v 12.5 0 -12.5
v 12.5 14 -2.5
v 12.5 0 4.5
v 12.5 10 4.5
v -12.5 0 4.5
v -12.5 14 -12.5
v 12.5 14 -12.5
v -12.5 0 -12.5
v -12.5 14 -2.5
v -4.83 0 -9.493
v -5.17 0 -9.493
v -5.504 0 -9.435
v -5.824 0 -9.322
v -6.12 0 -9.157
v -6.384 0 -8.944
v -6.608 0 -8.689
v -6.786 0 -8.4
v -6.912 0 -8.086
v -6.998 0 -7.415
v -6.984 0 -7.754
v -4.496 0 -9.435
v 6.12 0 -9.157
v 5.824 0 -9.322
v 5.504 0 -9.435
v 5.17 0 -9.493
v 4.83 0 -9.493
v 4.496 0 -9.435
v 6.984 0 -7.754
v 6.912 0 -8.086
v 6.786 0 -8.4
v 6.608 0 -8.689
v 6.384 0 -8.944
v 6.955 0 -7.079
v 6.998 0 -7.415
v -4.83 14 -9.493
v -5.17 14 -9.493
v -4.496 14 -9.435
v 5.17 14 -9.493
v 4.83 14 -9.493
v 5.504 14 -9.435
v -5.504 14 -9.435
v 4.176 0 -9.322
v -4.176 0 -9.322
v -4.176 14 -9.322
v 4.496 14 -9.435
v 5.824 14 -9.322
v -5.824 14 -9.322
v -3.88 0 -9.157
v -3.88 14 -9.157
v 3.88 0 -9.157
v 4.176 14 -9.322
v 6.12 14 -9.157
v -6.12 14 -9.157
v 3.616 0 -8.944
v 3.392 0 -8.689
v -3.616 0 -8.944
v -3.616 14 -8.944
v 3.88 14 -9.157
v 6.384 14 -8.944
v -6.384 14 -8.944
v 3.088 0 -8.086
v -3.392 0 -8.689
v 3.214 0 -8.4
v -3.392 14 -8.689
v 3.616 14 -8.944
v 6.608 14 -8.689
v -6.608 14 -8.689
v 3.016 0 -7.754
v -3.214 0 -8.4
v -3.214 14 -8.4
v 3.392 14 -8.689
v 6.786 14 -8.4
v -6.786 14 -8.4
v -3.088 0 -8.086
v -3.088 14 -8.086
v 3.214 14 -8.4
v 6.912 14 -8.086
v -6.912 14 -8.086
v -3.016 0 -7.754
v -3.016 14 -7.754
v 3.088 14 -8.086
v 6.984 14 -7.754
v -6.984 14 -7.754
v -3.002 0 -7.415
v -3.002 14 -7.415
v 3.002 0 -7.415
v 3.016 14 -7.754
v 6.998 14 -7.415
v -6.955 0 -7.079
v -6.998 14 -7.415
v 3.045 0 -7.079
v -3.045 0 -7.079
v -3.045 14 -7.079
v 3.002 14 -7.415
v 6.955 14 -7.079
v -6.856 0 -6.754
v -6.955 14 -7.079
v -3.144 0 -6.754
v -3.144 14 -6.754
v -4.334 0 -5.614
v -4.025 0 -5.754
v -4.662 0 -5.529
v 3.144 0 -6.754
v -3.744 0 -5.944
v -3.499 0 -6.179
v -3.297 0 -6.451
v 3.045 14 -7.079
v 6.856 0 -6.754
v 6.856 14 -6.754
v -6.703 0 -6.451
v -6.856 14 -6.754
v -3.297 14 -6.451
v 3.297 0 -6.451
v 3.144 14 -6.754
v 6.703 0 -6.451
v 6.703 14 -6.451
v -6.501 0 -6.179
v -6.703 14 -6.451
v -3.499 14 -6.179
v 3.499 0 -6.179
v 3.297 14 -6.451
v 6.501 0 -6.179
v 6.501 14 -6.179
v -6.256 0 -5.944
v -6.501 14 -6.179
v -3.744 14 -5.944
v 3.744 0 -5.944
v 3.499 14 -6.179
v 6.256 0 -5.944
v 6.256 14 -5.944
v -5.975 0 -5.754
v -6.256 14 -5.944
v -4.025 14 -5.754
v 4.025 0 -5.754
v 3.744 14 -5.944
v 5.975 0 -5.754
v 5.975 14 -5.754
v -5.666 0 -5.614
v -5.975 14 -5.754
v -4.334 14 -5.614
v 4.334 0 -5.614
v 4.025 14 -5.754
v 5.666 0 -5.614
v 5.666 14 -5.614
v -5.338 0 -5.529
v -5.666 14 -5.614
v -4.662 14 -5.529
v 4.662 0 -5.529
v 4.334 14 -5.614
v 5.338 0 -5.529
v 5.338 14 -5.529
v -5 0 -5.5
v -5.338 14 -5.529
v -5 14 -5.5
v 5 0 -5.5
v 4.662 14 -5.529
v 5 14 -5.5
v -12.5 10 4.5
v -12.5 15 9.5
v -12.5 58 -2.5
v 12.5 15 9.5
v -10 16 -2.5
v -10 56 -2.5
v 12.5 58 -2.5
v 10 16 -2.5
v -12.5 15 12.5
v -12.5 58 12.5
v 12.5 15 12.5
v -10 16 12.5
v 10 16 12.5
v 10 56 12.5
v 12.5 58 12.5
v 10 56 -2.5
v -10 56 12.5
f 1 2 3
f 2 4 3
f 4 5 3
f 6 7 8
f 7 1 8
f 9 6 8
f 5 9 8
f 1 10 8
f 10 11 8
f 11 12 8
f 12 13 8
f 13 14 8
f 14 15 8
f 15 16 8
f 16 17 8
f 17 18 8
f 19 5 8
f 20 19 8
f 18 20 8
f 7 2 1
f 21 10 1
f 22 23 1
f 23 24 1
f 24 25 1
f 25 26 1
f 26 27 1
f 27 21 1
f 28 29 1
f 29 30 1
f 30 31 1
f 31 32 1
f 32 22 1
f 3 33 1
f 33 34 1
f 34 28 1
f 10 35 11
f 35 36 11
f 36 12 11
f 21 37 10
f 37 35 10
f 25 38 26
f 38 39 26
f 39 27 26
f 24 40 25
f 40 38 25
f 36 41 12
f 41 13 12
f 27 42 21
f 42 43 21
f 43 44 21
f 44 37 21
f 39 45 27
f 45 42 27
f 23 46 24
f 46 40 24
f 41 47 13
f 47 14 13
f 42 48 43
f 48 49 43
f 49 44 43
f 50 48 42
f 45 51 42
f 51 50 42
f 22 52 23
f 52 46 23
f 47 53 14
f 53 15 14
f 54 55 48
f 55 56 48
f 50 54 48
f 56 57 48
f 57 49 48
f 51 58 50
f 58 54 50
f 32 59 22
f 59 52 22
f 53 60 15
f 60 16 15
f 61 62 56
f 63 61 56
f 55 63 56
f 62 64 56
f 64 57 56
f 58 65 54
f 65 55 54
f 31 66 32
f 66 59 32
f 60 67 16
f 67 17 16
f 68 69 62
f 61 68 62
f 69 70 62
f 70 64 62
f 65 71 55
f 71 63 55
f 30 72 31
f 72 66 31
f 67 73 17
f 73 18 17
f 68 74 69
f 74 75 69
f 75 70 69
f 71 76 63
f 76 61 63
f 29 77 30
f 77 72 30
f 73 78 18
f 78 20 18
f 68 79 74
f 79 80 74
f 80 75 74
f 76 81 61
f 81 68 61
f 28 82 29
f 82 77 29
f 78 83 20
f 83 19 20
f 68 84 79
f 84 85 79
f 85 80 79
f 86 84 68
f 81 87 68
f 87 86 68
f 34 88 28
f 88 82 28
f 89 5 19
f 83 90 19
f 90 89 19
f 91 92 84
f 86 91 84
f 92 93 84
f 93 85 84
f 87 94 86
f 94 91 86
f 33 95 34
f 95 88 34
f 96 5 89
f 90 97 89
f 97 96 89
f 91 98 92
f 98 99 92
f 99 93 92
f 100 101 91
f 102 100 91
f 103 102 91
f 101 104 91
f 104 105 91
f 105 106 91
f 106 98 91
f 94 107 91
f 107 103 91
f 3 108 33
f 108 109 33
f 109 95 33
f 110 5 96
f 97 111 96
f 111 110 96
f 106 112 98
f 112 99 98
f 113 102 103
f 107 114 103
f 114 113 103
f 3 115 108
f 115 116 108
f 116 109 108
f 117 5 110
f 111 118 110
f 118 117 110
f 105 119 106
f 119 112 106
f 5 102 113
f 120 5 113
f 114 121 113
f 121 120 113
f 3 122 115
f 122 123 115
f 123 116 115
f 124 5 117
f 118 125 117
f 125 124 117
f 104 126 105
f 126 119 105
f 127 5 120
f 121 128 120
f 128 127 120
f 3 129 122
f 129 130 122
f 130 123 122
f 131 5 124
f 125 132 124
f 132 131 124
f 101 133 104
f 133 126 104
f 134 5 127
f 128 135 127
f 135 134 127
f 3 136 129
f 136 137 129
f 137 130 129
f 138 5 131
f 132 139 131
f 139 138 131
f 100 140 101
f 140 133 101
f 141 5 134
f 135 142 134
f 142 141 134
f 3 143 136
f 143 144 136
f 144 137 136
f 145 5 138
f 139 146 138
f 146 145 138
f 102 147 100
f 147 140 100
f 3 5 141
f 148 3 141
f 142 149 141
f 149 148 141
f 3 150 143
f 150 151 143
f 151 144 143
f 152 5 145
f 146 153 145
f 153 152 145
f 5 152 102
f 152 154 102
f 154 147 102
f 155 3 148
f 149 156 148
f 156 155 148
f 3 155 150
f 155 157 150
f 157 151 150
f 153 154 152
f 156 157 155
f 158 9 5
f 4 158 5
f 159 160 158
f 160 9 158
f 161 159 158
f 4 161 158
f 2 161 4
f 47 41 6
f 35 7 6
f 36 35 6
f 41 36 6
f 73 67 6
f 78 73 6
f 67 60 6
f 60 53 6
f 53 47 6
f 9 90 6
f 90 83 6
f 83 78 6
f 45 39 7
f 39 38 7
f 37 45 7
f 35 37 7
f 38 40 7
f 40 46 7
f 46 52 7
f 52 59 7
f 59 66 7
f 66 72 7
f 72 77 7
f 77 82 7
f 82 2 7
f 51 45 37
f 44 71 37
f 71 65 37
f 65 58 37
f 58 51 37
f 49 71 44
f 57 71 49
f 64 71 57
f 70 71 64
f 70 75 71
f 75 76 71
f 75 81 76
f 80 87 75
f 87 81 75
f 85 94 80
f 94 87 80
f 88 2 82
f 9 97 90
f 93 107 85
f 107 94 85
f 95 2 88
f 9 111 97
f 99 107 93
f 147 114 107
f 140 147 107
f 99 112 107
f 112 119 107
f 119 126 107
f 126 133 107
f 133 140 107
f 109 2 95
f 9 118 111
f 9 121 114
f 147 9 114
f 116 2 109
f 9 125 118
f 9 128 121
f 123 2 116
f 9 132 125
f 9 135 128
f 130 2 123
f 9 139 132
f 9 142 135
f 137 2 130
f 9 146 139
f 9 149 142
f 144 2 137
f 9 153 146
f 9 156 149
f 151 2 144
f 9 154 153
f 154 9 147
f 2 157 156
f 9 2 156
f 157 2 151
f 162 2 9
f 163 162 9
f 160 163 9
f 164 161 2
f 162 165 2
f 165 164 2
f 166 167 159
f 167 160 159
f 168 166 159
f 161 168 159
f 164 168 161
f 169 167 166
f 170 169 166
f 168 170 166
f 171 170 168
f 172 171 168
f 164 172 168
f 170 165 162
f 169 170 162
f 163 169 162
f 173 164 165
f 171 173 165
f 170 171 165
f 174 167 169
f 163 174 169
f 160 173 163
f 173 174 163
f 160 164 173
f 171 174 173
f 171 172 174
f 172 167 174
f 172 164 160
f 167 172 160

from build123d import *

# Parameters (mm, degrees)
BOSS_EXTRU_1_DEPTH      = 14
ESQUISSE2_W             = 20
ESQUISSE2_H             = 40
BOSS_EXTRU_2_DEPTH      = 15
ENL_V_MAT_EXTRU_1_REACH = 66.384
ENL_V_MAT_EXTRU_2_REACH = 49.418
ESQUISSE4_R             = 2


with BuildPart() as part:
    # Esquisse1 → Boss.-Extru.1 (new body)
    with BuildSketch(Plane(origin=(0, 0, 0), x_dir=(1, 0, 0), z_dir=(0, 1, 0))):
        Polygon((12.5, -12.5), (12.5, 0), (12.5, 12.5), (-12.5, 12.5), (-12.5, -12.5), align=None)
    extrude(amount=BOSS_EXTRU_1_DEPTH)

    # Esquisse2 → Boss.-Extru.2 (add)
    with BuildSketch(Plane.XY.offset(12.5)):
        Polygon((-12.5, 14), (12.5, 14), (12.5, 16.5), (12.5, 58), (-12.5, 58), align=None)
        with Locations((0, 36)):
            Rectangle(ESQUISSE2_W, ESQUISSE2_H, mode=Mode.SUBTRACT)
    extrude(amount=-BOSS_EXTRU_2_DEPTH)

    # Esquisse3 → Enlèv. mat.-Extru.1 (cut, up to next)
    with BuildSketch(Plane.ZY.offset(12.5), mode=Mode.PRIVATE) as enl_v_mat_extru_1_sk1:
        Polygon((12.5, 0), (4.5, 0), (4.5, 10), (9.5, 15), (12.5, 15), align=None)
    enl_v_mat_extru_1_tool1 = extrude(enl_v_mat_extru_1_sk1.sketch, amount=-ENL_V_MAT_EXTRU_1_REACH, mode=Mode.PRIVATE) & part.part
    add(enl_v_mat_extru_1_tool1.solids().sort_by_distance((-12.5, 6.821705, 8.771318))[0], mode=Mode.SUBTRACT)

    # Esquisse4 → Enlèv. mat.-Extru.2 (cut, up to next)
    with BuildSketch(Plane(origin=(0, 14, 0), x_dir=(1, 0, 0), z_dir=(0, 1, 0)), mode=Mode.PRIVATE) as enl_v_mat_extru_2_sk1:
        with Locations(Location((5, 7.5, 0), (0, 0, 270))):
            Circle(ESQUISSE4_R)
    enl_v_mat_extru_2_tool1 = extrude(enl_v_mat_extru_2_sk1.sketch, amount=-ENL_V_MAT_EXTRU_2_REACH, mode=Mode.PRIVATE) & part.part
    # Esquisse4 → Enlèv. mat.-Extru.2 (cut, up to next)
    with BuildSketch(Plane(origin=(0, 14, 0), x_dir=(1, 0, 0), z_dir=(0, 1, 0)), mode=Mode.PRIVATE) as enl_v_mat_extru_2_sk2:
        with Locations(Location((-5, 7.5, 0), (0, 0, 270))):
            Circle(ESQUISSE4_R)
    enl_v_mat_extru_2_tool2 = extrude(enl_v_mat_extru_2_sk2.sketch, amount=-ENL_V_MAT_EXTRU_2_REACH, mode=Mode.PRIVATE) & part.part
    add(enl_v_mat_extru_2_tool1.solids().sort_by_distance((5, 14, -7.5))[0], mode=Mode.SUBTRACT)
    add(enl_v_mat_extru_2_tool2.solids().sort_by_distance((-5, 14, -7.5))[0], mode=Mode.SUBTRACT)


solid = part.part
